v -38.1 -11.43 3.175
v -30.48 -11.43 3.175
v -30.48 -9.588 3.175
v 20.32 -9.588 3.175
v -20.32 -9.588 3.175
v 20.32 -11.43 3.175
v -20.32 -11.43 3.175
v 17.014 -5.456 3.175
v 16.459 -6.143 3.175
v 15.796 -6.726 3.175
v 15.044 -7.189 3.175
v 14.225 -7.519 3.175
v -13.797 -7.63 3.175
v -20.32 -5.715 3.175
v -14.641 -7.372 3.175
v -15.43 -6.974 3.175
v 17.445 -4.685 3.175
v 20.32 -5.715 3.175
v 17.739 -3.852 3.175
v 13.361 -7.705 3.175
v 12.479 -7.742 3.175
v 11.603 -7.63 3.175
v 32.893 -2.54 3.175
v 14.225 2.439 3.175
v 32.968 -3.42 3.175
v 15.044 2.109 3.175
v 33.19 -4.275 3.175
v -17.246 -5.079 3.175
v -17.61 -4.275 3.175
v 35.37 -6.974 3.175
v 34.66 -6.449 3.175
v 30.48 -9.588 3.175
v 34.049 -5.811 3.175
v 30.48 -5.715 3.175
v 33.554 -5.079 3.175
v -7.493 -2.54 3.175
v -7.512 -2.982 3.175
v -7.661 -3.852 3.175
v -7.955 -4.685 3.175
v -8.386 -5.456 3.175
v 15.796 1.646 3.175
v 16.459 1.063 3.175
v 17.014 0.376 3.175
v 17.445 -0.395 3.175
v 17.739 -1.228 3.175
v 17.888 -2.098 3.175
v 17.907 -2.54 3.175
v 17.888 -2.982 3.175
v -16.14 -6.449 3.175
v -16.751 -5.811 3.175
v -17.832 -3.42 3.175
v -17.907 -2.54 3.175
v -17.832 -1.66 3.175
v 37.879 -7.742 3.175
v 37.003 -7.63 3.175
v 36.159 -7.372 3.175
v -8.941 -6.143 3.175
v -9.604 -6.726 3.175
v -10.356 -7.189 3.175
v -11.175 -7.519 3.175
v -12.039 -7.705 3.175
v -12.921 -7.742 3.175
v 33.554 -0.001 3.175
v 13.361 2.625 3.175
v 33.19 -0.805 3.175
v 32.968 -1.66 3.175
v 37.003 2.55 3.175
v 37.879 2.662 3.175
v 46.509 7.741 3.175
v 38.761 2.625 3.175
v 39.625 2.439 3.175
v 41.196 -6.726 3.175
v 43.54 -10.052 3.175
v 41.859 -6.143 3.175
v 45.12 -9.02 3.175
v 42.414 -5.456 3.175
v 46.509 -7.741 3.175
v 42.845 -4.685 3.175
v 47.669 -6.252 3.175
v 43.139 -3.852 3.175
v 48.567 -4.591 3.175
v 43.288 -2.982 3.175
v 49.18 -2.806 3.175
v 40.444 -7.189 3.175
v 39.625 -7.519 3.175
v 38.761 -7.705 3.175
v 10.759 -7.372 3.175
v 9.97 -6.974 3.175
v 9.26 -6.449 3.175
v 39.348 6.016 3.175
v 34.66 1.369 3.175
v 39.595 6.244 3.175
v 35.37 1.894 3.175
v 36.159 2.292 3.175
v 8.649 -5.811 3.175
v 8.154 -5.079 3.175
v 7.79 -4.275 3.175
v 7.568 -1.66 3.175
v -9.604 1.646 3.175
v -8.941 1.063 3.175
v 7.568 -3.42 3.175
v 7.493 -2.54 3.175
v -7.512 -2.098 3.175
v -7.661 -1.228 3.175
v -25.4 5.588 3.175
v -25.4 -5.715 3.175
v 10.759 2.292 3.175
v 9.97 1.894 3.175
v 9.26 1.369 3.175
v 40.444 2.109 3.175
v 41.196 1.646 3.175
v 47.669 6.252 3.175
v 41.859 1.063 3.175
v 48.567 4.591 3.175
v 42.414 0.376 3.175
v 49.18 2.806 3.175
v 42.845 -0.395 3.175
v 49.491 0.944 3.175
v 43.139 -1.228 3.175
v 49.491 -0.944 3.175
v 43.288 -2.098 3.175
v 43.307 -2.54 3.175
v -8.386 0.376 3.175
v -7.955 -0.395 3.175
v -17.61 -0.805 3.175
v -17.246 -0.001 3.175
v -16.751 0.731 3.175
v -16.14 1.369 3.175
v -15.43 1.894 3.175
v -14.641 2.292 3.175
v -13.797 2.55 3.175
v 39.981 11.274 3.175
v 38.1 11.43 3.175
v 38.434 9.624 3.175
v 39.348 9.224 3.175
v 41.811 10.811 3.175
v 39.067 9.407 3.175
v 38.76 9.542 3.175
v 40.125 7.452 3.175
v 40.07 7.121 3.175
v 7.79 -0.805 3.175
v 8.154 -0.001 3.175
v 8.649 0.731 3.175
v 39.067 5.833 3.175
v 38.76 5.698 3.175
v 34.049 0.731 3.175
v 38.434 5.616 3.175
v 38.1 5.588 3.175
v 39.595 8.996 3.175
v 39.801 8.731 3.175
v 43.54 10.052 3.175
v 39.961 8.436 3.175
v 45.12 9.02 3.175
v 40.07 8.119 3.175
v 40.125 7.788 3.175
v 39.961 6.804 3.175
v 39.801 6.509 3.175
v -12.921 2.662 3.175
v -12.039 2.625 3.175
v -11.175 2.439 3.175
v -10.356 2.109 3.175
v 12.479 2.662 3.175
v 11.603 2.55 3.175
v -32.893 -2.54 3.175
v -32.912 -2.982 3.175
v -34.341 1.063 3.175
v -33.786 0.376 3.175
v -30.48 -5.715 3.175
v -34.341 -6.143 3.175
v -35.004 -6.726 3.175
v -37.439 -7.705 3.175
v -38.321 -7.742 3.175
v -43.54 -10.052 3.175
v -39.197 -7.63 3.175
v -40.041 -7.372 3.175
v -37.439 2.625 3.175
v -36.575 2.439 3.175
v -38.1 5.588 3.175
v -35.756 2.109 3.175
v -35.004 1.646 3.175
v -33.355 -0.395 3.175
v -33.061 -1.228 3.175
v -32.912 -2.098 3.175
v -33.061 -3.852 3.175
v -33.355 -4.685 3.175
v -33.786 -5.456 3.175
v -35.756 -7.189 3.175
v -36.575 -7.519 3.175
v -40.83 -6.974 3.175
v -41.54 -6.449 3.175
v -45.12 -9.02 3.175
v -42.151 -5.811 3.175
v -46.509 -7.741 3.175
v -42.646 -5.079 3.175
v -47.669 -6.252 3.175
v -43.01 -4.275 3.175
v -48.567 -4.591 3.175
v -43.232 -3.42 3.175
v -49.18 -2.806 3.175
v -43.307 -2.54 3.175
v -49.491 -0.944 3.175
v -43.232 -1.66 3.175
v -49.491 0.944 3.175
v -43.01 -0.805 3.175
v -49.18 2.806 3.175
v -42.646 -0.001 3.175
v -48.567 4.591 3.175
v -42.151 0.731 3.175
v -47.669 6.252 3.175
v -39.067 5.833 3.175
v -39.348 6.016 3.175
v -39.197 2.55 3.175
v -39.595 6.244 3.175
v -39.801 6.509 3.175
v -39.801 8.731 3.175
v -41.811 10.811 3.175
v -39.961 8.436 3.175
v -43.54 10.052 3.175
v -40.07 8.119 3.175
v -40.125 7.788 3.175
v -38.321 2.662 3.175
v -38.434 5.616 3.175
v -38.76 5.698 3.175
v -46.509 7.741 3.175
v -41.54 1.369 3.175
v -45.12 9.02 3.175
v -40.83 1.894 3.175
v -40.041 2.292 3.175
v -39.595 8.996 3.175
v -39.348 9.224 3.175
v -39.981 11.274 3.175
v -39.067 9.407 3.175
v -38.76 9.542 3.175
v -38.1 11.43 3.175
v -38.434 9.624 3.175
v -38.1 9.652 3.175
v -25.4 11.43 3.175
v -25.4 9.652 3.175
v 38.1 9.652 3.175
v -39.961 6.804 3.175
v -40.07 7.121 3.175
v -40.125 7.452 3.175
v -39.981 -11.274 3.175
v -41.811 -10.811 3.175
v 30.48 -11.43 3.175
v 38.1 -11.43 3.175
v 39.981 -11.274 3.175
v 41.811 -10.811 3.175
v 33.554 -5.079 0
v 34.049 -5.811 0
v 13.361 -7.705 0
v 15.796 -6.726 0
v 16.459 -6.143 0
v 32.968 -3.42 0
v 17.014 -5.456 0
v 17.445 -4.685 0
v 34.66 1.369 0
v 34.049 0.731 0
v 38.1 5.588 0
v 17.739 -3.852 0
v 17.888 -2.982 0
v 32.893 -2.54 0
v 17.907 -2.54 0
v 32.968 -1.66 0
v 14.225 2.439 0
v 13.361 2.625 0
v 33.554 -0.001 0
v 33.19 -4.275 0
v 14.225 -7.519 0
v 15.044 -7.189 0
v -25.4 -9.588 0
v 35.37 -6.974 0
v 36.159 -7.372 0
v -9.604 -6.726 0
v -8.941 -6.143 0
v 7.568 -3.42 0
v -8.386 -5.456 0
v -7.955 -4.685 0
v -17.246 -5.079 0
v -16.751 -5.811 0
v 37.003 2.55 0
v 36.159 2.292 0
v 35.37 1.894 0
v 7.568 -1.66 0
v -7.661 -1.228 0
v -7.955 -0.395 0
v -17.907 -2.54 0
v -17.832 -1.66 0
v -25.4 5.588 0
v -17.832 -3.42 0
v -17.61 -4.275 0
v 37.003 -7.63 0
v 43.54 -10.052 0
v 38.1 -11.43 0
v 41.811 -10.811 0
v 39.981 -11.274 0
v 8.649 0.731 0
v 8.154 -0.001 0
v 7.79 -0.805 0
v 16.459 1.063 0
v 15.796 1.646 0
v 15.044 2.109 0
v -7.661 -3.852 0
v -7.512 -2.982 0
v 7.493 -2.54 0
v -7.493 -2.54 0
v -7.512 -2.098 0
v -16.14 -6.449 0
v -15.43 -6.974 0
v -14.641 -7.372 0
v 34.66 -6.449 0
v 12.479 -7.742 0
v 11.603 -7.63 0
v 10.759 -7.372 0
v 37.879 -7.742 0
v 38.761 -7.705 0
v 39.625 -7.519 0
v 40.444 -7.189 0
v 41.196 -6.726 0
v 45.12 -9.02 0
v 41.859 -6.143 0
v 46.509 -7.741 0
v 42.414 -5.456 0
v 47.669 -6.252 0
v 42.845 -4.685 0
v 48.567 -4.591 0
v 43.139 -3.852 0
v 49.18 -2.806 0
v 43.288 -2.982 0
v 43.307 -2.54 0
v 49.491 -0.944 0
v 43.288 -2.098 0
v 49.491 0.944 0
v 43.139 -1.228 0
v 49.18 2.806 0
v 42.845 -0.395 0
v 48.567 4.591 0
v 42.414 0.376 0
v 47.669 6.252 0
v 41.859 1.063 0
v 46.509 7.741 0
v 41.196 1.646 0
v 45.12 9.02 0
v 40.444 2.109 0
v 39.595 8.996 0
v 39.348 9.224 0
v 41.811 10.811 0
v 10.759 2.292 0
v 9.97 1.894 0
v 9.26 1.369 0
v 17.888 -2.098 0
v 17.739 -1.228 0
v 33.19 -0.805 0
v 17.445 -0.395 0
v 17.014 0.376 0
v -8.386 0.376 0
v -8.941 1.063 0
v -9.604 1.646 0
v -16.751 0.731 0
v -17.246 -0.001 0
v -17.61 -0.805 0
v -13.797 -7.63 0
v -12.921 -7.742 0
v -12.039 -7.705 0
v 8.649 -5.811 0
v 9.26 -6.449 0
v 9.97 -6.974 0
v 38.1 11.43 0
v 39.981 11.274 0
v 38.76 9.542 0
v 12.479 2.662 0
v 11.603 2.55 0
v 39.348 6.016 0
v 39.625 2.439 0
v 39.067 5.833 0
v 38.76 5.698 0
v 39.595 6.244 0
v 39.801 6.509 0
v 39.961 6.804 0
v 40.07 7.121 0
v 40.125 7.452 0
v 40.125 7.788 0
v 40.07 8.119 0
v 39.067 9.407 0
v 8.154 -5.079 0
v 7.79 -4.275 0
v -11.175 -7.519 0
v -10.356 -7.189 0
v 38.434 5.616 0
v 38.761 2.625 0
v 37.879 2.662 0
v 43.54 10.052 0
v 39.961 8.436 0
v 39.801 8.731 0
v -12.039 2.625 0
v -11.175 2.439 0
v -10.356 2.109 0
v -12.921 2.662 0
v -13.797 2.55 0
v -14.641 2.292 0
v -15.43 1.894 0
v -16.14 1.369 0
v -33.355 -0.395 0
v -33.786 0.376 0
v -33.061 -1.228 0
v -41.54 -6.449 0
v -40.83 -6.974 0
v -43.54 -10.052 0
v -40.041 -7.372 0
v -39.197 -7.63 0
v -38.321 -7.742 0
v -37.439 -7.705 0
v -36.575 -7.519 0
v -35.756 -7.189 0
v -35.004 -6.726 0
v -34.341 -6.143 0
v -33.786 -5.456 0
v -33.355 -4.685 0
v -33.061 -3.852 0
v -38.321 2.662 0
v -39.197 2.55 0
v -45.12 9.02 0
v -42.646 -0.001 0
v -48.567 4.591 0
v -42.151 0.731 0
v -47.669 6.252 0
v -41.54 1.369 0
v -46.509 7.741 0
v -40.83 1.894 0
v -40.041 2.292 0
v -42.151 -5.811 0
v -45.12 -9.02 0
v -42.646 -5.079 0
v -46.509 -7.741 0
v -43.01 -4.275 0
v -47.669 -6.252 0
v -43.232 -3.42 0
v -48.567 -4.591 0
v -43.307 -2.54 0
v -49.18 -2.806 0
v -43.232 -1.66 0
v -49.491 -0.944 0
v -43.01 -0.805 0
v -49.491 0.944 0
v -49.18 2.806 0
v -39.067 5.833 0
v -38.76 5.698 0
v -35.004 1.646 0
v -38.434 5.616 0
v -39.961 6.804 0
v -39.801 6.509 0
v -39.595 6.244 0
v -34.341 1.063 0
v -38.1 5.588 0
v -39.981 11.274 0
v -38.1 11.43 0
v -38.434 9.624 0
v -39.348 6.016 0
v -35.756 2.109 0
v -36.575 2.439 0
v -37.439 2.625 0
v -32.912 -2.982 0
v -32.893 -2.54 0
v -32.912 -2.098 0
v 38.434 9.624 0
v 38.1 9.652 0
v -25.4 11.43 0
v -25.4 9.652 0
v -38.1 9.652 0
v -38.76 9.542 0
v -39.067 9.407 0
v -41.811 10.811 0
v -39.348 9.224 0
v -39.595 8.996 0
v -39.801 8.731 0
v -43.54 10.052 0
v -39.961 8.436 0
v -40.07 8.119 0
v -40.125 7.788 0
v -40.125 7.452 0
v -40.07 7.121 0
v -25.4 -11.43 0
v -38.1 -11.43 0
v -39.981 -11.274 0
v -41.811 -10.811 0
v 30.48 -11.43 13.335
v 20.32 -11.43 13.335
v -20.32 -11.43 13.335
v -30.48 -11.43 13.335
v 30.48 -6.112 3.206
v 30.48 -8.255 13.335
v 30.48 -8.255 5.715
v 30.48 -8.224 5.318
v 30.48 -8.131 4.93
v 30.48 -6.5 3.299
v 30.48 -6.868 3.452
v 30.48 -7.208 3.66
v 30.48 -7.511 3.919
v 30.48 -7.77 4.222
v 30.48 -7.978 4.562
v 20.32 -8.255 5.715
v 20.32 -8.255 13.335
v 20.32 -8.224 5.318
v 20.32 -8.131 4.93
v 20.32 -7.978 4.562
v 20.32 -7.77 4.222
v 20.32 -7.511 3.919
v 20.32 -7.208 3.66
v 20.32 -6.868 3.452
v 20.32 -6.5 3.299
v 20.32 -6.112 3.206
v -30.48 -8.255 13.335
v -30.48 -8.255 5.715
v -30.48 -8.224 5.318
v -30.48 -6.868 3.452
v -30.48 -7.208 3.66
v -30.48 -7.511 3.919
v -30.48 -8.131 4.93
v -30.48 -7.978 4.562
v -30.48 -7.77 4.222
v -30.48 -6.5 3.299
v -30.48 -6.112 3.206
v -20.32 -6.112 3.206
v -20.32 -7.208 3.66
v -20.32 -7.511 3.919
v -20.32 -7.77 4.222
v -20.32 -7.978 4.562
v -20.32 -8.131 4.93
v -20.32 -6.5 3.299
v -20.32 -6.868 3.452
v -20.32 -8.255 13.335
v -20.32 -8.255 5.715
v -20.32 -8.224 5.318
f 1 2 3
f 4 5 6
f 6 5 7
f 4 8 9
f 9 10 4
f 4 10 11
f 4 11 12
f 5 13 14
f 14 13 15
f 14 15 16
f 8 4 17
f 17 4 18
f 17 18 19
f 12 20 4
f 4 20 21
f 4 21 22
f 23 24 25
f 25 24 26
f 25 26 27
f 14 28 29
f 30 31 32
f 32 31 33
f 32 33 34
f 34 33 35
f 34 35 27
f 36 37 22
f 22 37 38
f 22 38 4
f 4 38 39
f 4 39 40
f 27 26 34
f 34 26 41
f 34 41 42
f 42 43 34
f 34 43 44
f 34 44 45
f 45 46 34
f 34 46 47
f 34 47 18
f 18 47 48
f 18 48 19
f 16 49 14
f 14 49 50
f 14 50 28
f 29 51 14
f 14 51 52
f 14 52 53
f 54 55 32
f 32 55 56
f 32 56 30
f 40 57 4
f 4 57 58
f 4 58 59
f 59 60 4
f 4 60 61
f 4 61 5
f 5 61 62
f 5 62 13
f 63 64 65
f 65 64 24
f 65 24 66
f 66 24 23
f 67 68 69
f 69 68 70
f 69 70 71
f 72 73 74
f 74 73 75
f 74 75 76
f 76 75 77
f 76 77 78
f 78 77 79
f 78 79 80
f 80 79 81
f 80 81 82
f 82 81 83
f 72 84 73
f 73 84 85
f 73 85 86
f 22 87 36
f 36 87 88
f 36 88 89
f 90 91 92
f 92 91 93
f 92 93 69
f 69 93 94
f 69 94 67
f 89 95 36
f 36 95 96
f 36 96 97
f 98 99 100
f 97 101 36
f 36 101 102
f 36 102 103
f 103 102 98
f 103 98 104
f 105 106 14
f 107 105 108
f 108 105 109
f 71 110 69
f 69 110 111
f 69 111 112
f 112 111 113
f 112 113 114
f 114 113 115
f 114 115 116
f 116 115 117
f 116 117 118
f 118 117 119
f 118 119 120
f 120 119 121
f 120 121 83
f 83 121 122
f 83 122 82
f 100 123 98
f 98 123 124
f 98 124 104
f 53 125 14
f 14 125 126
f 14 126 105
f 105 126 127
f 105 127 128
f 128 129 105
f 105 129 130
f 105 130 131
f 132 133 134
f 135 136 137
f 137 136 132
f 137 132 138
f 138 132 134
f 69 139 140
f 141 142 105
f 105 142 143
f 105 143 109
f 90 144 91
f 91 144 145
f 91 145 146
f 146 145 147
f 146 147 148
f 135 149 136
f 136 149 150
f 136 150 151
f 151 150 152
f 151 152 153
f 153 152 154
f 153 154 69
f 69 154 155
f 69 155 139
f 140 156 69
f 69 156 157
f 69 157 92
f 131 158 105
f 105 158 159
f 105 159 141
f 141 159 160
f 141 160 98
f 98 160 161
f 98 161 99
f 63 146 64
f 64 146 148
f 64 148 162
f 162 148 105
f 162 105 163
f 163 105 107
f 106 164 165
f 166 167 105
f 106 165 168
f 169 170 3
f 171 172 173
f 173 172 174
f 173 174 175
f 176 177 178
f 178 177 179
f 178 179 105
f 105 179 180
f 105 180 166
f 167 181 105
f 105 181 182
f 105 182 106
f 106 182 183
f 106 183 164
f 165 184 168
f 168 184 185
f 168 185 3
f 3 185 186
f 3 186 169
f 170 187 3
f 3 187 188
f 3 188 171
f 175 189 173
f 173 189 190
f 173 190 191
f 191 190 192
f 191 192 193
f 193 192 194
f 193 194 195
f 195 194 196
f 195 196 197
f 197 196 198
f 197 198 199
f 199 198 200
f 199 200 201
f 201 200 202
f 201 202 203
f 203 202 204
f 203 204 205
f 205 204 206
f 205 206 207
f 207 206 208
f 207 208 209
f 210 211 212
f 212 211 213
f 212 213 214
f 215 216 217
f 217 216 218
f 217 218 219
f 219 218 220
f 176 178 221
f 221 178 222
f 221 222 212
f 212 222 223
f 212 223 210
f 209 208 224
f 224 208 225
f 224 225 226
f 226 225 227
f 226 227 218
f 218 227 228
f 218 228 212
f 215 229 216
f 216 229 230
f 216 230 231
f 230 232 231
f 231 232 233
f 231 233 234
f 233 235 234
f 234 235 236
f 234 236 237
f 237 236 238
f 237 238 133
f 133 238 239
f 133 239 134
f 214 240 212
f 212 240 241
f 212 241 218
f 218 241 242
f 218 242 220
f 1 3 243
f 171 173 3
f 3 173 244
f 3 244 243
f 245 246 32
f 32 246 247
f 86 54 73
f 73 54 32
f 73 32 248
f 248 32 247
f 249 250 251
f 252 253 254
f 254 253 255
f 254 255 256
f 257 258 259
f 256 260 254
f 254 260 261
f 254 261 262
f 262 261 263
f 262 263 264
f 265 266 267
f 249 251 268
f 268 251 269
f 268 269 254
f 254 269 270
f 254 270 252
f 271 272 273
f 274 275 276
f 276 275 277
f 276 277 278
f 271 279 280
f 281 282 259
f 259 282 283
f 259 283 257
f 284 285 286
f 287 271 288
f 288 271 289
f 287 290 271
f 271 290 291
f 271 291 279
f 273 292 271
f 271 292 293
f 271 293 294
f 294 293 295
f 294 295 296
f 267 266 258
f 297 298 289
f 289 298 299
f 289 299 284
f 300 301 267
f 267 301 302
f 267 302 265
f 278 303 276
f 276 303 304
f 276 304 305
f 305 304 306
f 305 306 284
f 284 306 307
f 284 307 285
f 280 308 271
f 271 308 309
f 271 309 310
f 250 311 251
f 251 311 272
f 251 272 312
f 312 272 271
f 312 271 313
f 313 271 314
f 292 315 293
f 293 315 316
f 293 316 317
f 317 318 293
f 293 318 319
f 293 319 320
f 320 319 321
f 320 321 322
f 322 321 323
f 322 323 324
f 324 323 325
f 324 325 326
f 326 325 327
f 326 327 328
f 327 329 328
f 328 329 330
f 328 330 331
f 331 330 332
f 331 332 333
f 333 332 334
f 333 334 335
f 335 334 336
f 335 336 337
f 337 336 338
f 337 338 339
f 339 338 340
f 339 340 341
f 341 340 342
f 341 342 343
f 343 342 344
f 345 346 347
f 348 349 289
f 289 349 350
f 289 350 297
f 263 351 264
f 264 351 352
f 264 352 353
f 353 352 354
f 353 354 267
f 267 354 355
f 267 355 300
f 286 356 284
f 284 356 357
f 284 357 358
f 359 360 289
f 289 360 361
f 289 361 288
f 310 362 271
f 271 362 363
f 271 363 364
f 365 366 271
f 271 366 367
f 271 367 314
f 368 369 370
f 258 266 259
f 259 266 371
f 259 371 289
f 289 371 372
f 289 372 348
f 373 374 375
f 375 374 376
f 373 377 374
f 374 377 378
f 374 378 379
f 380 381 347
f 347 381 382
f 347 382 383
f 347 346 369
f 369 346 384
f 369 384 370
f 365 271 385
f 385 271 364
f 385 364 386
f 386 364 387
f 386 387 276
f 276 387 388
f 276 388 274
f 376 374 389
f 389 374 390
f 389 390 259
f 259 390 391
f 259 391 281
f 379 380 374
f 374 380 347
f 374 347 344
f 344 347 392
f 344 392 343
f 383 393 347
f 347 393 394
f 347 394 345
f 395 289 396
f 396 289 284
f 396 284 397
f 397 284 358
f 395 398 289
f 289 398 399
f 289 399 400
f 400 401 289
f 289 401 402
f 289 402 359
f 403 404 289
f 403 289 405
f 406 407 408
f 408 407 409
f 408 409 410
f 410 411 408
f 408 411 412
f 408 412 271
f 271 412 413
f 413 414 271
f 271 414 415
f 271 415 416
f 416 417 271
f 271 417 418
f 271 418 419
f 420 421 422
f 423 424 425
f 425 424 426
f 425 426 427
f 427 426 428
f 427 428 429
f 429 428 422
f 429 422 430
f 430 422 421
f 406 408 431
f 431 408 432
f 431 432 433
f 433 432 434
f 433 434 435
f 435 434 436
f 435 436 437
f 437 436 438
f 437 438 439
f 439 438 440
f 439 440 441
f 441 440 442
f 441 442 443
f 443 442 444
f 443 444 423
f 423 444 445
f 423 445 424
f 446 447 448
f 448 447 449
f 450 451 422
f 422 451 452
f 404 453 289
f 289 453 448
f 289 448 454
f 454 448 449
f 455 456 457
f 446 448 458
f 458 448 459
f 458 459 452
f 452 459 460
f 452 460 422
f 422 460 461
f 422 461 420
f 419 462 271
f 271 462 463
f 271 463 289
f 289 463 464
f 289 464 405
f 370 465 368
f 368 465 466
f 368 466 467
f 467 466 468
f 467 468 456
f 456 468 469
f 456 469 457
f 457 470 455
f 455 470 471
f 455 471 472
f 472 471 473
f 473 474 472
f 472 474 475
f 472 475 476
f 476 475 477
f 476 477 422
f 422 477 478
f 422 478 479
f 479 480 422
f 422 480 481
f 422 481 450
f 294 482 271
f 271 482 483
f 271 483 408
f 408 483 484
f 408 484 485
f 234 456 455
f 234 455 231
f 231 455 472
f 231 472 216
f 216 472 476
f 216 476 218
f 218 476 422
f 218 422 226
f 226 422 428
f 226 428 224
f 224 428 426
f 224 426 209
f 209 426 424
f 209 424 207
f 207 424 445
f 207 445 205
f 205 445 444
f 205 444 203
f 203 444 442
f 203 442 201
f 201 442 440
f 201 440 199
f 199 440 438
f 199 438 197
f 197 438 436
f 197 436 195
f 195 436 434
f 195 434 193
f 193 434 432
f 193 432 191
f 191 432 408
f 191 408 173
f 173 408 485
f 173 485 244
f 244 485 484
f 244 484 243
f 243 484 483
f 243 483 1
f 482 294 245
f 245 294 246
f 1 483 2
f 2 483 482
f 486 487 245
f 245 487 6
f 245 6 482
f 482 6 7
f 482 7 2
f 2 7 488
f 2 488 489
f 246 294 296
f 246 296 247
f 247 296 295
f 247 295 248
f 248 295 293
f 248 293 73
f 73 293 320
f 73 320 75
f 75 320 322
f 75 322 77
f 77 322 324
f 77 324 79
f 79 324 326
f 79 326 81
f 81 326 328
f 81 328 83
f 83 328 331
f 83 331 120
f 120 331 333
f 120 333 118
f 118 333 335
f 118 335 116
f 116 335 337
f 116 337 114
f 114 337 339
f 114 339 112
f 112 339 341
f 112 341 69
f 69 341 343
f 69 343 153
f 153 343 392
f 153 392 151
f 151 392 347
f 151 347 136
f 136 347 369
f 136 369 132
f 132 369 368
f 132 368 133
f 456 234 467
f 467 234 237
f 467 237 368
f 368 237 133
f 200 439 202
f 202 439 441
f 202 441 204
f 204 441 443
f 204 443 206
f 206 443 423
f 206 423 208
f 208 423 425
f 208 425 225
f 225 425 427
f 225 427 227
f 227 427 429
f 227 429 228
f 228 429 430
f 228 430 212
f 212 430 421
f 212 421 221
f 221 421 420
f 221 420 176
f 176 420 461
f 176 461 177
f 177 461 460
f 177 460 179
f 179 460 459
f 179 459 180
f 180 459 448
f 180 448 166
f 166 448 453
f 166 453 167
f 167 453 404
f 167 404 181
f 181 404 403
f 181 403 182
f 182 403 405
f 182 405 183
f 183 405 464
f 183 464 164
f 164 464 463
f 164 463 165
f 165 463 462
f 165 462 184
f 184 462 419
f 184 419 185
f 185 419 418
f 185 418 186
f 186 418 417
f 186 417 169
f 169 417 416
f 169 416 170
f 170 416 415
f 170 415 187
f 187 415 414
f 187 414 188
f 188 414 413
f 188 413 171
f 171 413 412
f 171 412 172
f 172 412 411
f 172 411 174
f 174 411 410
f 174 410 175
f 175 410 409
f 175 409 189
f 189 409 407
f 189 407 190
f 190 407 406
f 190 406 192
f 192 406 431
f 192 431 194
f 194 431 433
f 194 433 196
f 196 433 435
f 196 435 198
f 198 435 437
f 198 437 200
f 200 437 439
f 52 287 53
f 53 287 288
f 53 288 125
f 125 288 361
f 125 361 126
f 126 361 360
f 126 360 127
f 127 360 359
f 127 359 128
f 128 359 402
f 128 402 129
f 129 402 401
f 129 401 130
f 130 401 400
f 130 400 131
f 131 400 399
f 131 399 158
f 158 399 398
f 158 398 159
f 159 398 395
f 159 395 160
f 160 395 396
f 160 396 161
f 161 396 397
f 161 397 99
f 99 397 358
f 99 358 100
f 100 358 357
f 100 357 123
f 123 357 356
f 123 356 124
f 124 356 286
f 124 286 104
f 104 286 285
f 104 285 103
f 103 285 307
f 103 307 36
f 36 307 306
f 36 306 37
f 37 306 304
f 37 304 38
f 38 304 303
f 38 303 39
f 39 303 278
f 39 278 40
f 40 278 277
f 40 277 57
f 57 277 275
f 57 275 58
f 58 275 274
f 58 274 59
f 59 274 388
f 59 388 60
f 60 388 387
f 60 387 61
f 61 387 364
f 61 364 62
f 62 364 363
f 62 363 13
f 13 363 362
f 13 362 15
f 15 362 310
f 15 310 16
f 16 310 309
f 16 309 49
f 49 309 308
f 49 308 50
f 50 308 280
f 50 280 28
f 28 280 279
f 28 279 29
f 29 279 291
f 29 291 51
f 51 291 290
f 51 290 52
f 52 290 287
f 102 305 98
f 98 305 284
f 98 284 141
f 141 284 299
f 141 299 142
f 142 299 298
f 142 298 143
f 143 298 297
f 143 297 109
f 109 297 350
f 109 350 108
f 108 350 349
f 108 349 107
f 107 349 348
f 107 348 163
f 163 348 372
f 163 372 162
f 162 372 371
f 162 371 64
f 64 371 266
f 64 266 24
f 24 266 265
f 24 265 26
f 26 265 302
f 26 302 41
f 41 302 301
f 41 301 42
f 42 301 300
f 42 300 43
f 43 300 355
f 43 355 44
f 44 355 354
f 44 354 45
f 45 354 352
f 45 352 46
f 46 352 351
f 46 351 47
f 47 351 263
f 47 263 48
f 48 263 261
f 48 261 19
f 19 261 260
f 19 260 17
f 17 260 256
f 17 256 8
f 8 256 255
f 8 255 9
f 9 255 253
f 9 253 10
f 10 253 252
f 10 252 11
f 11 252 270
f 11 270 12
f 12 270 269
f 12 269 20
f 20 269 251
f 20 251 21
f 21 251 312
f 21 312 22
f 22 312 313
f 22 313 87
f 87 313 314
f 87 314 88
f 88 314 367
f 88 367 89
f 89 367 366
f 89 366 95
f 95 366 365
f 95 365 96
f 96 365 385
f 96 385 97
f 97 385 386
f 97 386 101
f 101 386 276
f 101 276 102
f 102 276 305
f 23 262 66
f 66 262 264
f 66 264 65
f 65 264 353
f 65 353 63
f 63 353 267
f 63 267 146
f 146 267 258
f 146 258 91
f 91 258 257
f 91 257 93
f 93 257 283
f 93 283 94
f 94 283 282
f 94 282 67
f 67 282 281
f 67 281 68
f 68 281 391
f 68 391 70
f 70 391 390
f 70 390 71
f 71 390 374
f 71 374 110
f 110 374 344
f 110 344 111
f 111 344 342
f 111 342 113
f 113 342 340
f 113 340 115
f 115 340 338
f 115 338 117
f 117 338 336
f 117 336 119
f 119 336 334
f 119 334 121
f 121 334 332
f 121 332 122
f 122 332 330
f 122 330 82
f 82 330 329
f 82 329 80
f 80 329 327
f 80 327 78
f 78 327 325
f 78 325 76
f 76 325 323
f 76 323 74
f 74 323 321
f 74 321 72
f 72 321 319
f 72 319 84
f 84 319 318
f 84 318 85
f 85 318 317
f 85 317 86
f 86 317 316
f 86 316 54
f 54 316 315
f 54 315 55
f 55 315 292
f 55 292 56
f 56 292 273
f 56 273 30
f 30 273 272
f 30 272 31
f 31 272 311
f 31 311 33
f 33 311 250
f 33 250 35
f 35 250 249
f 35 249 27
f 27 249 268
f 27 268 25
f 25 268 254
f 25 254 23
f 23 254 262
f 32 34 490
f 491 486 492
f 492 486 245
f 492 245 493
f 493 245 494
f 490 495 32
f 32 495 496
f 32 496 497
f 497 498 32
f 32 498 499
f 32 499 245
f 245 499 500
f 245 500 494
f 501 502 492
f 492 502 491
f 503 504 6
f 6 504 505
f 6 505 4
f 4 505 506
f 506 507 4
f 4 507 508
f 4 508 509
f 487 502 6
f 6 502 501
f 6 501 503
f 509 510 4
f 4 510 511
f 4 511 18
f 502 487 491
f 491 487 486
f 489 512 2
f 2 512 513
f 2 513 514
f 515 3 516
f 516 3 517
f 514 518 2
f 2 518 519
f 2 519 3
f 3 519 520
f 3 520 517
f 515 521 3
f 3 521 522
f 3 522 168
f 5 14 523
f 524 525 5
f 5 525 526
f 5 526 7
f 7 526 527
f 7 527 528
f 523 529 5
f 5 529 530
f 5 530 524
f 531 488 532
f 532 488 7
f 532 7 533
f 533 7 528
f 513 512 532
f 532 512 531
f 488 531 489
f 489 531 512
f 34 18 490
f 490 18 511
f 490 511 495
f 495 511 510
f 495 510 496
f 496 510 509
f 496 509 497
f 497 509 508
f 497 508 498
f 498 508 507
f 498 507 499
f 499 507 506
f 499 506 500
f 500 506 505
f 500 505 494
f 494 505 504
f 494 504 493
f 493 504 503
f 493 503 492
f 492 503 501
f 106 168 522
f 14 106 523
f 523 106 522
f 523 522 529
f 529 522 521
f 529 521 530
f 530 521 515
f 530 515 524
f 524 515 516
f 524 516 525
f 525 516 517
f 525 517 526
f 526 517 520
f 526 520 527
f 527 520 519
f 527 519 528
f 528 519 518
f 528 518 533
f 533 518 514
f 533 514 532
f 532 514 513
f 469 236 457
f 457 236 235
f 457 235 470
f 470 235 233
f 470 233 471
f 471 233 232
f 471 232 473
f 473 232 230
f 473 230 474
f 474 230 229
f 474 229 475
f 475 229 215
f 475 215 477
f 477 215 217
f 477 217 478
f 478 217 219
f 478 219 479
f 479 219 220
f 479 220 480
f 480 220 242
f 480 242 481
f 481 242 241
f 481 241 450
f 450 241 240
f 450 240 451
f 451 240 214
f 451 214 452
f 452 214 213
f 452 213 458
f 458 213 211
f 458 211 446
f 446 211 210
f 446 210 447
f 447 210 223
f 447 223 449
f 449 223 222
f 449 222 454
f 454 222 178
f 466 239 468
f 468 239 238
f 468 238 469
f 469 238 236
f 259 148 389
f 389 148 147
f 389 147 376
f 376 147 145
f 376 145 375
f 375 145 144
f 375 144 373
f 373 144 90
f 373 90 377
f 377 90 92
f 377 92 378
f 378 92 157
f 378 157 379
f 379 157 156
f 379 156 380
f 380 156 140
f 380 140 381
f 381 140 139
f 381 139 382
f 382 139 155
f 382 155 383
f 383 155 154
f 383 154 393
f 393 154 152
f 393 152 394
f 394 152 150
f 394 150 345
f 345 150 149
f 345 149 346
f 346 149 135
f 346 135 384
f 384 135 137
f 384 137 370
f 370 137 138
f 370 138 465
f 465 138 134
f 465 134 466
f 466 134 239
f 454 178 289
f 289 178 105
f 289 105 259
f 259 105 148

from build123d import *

# Parameters (mm, degrees)
SKETCH1_R           = 5.207
BOSS_EXTRUDE1_DEPTH = 3.175
SKETCH2_W           = 10.16
SKETCH2_H           = 3.175
BOSS_EXTRUDE2_DEPTH = 10.16
FILLET1_R           = 2.54
CUT_EXTRUDE2_REACH  = 53.837


with BuildPart() as part:
    # Sketch1 → Boss-Extrude1 (new body)
    with BuildSketch(Plane.XY):
        with BuildLine():
            Line((-38.1, 11.43), (38.1, 11.43))
            ThreePointArc((38.1, 11.43), (49.53, 0), (38.1, -11.43))
            Line((38.1, -11.43), (-38.1, -11.43))
            ThreePointArc((-38.1, -11.43), (-49.53, 0), (-38.1, 11.43))
        make_face()
        with Locations((-38.1, -2.54)):
            Circle(SKETCH1_R, mode=Mode.SUBTRACT)
        with Locations((-12.7, -2.54)):
            Circle(SKETCH1_R, mode=Mode.SUBTRACT)
        with Locations((12.7, -2.54)):
            Circle(SKETCH1_R, mode=Mode.SUBTRACT)
        with Locations((38.1, -2.54)):
            Circle(SKETCH1_R, mode=Mode.SUBTRACT)
    extrude(amount=BOSS_EXTRUDE1_DEPTH)

    # Sketch2 → Boss-Extrude2 (add)
    with BuildSketch(Plane.XY.offset(3.175)):
        with Locations((-25.4, -9.8425)):
            Rectangle(SKETCH2_W, SKETCH2_H)
        with Locations((25.4, -9.8425)):
            Rectangle(SKETCH2_W, SKETCH2_H)
    extrude(amount=BOSS_EXTRUDE2_DEPTH)

    # Fillet1
    fillet1_edges = [part.edges().sort_by_distance(p)[0] for p in [
        (25.4, -8.255, 3.175),
        (-25.4, -8.255, 3.175),
    ]]
    fillet(fillet1_edges, radius=FILLET1_R)

    # Sketch4 → Cut-Extrude2 (cut, up to next)
    with BuildSketch(Plane.XY.offset(3.175), mode=Mode.PRIVATE) as cut_extrude2_sk1:
        with BuildLine():
            Line((-38.1, 9.652), (38.1, 9.652))
            ThreePointArc((38.1, 9.652), (40.132, 7.62), (38.1, 5.588))
            Line((38.1, 5.588), (-38.1, 5.588))
            ThreePointArc((-38.1, 5.588), (-40.132, 7.62), (-38.1, 9.652))
        make_face()
    cut_extrude2_tool1 = extrude(cut_extrude2_sk1.sketch, amount=-CUT_EXTRUDE2_REACH, mode=Mode.PRIVATE) & part.part
    add(cut_extrude2_tool1.solids().sort_by_distance((0, 7.62, 3.175))[0], mode=Mode.SUBTRACT)


solid = part.part
